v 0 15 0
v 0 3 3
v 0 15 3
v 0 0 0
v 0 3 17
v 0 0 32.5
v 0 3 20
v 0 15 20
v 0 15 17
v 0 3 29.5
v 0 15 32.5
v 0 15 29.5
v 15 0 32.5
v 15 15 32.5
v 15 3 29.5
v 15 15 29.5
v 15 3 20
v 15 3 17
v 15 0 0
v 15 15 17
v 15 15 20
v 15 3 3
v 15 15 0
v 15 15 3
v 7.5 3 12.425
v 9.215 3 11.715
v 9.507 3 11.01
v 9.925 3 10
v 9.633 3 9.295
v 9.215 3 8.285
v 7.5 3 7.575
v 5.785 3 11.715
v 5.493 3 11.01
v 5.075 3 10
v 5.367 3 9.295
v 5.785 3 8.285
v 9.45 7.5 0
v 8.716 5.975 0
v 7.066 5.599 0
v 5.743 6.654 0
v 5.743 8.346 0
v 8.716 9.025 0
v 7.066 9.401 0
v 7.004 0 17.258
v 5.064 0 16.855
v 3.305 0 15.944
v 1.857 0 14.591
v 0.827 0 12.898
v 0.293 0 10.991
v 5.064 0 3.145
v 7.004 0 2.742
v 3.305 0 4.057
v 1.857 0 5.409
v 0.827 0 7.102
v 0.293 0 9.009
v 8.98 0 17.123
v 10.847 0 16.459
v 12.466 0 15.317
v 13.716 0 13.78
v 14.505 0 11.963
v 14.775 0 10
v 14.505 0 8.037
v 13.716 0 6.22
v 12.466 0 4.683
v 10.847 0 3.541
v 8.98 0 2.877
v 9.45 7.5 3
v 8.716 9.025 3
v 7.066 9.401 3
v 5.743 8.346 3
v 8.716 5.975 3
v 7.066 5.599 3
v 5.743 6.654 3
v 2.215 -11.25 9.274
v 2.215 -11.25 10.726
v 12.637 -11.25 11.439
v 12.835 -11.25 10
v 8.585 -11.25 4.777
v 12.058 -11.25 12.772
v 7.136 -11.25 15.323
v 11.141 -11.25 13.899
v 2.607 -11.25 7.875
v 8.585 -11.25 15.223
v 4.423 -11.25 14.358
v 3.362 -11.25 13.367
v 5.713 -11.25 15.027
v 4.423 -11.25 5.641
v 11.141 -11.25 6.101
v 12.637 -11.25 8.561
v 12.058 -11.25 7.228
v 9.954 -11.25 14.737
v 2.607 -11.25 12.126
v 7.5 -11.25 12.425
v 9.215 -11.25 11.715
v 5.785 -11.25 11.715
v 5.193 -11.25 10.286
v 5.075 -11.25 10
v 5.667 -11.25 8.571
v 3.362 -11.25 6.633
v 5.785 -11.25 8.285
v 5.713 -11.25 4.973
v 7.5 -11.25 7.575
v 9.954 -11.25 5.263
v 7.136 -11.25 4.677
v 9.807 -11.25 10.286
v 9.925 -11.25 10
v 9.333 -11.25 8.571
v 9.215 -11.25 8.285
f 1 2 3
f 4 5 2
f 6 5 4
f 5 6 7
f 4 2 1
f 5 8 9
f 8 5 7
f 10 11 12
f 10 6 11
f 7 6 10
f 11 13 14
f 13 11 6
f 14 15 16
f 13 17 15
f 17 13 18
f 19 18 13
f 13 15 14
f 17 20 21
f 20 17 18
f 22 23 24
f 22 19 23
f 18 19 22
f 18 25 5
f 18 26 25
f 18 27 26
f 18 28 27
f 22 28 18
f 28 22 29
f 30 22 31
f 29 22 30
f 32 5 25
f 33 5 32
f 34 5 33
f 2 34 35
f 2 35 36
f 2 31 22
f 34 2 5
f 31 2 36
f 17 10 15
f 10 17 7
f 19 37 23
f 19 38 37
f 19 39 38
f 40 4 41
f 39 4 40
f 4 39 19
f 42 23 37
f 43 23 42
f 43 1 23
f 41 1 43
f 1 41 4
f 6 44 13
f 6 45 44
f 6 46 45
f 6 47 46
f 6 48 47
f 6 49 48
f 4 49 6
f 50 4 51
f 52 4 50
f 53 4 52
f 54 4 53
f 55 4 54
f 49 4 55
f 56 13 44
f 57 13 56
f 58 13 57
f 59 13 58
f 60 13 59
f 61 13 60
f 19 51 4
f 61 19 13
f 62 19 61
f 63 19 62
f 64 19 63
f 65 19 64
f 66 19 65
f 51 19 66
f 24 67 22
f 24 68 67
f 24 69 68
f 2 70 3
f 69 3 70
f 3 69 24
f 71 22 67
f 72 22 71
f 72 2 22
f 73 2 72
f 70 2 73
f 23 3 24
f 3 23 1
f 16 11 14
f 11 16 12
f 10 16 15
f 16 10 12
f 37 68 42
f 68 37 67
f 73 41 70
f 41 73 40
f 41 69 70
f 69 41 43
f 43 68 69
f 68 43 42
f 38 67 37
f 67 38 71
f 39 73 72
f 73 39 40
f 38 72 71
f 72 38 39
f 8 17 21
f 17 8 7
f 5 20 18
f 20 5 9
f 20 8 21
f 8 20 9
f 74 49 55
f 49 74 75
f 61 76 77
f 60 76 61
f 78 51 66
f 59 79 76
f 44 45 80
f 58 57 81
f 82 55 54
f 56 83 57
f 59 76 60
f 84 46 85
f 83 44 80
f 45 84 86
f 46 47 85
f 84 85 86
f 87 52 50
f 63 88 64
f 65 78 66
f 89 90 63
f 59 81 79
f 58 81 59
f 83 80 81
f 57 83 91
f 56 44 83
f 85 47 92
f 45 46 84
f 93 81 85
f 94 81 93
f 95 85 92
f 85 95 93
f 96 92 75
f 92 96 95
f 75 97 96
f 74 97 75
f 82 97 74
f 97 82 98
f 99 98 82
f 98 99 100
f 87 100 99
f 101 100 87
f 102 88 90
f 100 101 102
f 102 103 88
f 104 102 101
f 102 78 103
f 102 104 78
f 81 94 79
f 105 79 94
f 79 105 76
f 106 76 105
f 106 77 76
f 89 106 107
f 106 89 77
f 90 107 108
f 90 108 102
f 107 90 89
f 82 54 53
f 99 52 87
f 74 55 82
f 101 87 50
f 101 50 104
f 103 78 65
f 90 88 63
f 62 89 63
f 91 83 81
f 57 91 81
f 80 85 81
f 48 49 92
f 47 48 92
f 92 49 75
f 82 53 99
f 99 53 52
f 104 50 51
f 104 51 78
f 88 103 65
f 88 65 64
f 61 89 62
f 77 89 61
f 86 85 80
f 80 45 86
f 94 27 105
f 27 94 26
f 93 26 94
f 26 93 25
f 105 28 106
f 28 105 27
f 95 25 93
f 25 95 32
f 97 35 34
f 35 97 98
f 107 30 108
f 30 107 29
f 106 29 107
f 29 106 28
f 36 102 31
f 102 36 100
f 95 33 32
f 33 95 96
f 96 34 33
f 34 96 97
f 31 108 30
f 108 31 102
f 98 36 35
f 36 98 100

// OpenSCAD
// file: universal_bracket.scad
module universal_bracket(
        servo_height,
        battery_height,
        tickness,
        bracket_width
    ) {
    base_height = servo_height + battery_height;
    cube([
        bracket_width, tickness, base_height + tickness
    ]);
    cube([bracket_width, bracket_width, tickness]);
    translate([0, 0, base_height]) {
        cube([bracket_width, bracket_width, tickness]);
    } 
}

servo_height = 20;
battery_height = 9.5;
tickness = 3;
bracket_width = 15;

universal_bracket(
    servo_height,
    battery_height,
    tickness,
    bracket_width
);
// main file
use <universal_bracket.scad>;

module punched_universal_bracket(
    servo_height,
    battery_height,
    thickness,
    bracket_width
) {
    difference() {
        universal_bracket(
            servo_height,
            battery_height,
            thickness,
            bracket_width,
            bottom_screw_size
        );

        // Bottom screw
        translate([bracket_width / 2, bracket_width / 2, 0]) {
            cylinder(
                h=thickness * 3,
                r1=bottom_screw_size / 2,
                r2=bottom_screw_size / 2,
                center=true
            );
        }
    }
}

module free_wheel_bracket(
    servo_height,
    battery_height,
    thickness,
    bracket_width,
    screw_size,
    screw_support
) {
    difference() {
        union() {
            // Main bracket
            punched_universal_bracket(
                servo_height,
                battery_height,
                thickness,
                bracket_width,
                bottom_screw_size
            );

            // Battery support
            translate([0, 0, servo_height - thickness]) {
                cube([bracket_width, bracket_width, thickness]);
            }

            // Servo screw support
            translate([bracket_width / 2, 0 , servo_height / 2]) { 
                rotate([90, 0, 0]) {
                    cylinder(
                        h=screw_support,
                        r1=screw_size * 1.5,
                        r2=screw_size * 1.1
                    );
                }
            }
        }

        // Servo screw insert
        translate([bracket_width / 2, 0 , servo_height / 2]) { 
            rotate([90, 0, 0]) {
                cylinder(
                    h=screw_support * 3,
                    r1=screw_size / 2,
                    r2=screw_size / 2,
                    center=true
                );
            }
        }
    }
}

servo_height = 20;
battery_height = 9.5;
thickness = 3;
bracket_width = 15;
screw_size = 4.85;
screw_support = 11.25;
bottom_screw_size = 3.90;

free_wheel_bracket(
    servo_height,
    battery_height,
    thickness,
    bracket_width,
    screw_size,
    screw_support,
    bottom_screw_size
);
